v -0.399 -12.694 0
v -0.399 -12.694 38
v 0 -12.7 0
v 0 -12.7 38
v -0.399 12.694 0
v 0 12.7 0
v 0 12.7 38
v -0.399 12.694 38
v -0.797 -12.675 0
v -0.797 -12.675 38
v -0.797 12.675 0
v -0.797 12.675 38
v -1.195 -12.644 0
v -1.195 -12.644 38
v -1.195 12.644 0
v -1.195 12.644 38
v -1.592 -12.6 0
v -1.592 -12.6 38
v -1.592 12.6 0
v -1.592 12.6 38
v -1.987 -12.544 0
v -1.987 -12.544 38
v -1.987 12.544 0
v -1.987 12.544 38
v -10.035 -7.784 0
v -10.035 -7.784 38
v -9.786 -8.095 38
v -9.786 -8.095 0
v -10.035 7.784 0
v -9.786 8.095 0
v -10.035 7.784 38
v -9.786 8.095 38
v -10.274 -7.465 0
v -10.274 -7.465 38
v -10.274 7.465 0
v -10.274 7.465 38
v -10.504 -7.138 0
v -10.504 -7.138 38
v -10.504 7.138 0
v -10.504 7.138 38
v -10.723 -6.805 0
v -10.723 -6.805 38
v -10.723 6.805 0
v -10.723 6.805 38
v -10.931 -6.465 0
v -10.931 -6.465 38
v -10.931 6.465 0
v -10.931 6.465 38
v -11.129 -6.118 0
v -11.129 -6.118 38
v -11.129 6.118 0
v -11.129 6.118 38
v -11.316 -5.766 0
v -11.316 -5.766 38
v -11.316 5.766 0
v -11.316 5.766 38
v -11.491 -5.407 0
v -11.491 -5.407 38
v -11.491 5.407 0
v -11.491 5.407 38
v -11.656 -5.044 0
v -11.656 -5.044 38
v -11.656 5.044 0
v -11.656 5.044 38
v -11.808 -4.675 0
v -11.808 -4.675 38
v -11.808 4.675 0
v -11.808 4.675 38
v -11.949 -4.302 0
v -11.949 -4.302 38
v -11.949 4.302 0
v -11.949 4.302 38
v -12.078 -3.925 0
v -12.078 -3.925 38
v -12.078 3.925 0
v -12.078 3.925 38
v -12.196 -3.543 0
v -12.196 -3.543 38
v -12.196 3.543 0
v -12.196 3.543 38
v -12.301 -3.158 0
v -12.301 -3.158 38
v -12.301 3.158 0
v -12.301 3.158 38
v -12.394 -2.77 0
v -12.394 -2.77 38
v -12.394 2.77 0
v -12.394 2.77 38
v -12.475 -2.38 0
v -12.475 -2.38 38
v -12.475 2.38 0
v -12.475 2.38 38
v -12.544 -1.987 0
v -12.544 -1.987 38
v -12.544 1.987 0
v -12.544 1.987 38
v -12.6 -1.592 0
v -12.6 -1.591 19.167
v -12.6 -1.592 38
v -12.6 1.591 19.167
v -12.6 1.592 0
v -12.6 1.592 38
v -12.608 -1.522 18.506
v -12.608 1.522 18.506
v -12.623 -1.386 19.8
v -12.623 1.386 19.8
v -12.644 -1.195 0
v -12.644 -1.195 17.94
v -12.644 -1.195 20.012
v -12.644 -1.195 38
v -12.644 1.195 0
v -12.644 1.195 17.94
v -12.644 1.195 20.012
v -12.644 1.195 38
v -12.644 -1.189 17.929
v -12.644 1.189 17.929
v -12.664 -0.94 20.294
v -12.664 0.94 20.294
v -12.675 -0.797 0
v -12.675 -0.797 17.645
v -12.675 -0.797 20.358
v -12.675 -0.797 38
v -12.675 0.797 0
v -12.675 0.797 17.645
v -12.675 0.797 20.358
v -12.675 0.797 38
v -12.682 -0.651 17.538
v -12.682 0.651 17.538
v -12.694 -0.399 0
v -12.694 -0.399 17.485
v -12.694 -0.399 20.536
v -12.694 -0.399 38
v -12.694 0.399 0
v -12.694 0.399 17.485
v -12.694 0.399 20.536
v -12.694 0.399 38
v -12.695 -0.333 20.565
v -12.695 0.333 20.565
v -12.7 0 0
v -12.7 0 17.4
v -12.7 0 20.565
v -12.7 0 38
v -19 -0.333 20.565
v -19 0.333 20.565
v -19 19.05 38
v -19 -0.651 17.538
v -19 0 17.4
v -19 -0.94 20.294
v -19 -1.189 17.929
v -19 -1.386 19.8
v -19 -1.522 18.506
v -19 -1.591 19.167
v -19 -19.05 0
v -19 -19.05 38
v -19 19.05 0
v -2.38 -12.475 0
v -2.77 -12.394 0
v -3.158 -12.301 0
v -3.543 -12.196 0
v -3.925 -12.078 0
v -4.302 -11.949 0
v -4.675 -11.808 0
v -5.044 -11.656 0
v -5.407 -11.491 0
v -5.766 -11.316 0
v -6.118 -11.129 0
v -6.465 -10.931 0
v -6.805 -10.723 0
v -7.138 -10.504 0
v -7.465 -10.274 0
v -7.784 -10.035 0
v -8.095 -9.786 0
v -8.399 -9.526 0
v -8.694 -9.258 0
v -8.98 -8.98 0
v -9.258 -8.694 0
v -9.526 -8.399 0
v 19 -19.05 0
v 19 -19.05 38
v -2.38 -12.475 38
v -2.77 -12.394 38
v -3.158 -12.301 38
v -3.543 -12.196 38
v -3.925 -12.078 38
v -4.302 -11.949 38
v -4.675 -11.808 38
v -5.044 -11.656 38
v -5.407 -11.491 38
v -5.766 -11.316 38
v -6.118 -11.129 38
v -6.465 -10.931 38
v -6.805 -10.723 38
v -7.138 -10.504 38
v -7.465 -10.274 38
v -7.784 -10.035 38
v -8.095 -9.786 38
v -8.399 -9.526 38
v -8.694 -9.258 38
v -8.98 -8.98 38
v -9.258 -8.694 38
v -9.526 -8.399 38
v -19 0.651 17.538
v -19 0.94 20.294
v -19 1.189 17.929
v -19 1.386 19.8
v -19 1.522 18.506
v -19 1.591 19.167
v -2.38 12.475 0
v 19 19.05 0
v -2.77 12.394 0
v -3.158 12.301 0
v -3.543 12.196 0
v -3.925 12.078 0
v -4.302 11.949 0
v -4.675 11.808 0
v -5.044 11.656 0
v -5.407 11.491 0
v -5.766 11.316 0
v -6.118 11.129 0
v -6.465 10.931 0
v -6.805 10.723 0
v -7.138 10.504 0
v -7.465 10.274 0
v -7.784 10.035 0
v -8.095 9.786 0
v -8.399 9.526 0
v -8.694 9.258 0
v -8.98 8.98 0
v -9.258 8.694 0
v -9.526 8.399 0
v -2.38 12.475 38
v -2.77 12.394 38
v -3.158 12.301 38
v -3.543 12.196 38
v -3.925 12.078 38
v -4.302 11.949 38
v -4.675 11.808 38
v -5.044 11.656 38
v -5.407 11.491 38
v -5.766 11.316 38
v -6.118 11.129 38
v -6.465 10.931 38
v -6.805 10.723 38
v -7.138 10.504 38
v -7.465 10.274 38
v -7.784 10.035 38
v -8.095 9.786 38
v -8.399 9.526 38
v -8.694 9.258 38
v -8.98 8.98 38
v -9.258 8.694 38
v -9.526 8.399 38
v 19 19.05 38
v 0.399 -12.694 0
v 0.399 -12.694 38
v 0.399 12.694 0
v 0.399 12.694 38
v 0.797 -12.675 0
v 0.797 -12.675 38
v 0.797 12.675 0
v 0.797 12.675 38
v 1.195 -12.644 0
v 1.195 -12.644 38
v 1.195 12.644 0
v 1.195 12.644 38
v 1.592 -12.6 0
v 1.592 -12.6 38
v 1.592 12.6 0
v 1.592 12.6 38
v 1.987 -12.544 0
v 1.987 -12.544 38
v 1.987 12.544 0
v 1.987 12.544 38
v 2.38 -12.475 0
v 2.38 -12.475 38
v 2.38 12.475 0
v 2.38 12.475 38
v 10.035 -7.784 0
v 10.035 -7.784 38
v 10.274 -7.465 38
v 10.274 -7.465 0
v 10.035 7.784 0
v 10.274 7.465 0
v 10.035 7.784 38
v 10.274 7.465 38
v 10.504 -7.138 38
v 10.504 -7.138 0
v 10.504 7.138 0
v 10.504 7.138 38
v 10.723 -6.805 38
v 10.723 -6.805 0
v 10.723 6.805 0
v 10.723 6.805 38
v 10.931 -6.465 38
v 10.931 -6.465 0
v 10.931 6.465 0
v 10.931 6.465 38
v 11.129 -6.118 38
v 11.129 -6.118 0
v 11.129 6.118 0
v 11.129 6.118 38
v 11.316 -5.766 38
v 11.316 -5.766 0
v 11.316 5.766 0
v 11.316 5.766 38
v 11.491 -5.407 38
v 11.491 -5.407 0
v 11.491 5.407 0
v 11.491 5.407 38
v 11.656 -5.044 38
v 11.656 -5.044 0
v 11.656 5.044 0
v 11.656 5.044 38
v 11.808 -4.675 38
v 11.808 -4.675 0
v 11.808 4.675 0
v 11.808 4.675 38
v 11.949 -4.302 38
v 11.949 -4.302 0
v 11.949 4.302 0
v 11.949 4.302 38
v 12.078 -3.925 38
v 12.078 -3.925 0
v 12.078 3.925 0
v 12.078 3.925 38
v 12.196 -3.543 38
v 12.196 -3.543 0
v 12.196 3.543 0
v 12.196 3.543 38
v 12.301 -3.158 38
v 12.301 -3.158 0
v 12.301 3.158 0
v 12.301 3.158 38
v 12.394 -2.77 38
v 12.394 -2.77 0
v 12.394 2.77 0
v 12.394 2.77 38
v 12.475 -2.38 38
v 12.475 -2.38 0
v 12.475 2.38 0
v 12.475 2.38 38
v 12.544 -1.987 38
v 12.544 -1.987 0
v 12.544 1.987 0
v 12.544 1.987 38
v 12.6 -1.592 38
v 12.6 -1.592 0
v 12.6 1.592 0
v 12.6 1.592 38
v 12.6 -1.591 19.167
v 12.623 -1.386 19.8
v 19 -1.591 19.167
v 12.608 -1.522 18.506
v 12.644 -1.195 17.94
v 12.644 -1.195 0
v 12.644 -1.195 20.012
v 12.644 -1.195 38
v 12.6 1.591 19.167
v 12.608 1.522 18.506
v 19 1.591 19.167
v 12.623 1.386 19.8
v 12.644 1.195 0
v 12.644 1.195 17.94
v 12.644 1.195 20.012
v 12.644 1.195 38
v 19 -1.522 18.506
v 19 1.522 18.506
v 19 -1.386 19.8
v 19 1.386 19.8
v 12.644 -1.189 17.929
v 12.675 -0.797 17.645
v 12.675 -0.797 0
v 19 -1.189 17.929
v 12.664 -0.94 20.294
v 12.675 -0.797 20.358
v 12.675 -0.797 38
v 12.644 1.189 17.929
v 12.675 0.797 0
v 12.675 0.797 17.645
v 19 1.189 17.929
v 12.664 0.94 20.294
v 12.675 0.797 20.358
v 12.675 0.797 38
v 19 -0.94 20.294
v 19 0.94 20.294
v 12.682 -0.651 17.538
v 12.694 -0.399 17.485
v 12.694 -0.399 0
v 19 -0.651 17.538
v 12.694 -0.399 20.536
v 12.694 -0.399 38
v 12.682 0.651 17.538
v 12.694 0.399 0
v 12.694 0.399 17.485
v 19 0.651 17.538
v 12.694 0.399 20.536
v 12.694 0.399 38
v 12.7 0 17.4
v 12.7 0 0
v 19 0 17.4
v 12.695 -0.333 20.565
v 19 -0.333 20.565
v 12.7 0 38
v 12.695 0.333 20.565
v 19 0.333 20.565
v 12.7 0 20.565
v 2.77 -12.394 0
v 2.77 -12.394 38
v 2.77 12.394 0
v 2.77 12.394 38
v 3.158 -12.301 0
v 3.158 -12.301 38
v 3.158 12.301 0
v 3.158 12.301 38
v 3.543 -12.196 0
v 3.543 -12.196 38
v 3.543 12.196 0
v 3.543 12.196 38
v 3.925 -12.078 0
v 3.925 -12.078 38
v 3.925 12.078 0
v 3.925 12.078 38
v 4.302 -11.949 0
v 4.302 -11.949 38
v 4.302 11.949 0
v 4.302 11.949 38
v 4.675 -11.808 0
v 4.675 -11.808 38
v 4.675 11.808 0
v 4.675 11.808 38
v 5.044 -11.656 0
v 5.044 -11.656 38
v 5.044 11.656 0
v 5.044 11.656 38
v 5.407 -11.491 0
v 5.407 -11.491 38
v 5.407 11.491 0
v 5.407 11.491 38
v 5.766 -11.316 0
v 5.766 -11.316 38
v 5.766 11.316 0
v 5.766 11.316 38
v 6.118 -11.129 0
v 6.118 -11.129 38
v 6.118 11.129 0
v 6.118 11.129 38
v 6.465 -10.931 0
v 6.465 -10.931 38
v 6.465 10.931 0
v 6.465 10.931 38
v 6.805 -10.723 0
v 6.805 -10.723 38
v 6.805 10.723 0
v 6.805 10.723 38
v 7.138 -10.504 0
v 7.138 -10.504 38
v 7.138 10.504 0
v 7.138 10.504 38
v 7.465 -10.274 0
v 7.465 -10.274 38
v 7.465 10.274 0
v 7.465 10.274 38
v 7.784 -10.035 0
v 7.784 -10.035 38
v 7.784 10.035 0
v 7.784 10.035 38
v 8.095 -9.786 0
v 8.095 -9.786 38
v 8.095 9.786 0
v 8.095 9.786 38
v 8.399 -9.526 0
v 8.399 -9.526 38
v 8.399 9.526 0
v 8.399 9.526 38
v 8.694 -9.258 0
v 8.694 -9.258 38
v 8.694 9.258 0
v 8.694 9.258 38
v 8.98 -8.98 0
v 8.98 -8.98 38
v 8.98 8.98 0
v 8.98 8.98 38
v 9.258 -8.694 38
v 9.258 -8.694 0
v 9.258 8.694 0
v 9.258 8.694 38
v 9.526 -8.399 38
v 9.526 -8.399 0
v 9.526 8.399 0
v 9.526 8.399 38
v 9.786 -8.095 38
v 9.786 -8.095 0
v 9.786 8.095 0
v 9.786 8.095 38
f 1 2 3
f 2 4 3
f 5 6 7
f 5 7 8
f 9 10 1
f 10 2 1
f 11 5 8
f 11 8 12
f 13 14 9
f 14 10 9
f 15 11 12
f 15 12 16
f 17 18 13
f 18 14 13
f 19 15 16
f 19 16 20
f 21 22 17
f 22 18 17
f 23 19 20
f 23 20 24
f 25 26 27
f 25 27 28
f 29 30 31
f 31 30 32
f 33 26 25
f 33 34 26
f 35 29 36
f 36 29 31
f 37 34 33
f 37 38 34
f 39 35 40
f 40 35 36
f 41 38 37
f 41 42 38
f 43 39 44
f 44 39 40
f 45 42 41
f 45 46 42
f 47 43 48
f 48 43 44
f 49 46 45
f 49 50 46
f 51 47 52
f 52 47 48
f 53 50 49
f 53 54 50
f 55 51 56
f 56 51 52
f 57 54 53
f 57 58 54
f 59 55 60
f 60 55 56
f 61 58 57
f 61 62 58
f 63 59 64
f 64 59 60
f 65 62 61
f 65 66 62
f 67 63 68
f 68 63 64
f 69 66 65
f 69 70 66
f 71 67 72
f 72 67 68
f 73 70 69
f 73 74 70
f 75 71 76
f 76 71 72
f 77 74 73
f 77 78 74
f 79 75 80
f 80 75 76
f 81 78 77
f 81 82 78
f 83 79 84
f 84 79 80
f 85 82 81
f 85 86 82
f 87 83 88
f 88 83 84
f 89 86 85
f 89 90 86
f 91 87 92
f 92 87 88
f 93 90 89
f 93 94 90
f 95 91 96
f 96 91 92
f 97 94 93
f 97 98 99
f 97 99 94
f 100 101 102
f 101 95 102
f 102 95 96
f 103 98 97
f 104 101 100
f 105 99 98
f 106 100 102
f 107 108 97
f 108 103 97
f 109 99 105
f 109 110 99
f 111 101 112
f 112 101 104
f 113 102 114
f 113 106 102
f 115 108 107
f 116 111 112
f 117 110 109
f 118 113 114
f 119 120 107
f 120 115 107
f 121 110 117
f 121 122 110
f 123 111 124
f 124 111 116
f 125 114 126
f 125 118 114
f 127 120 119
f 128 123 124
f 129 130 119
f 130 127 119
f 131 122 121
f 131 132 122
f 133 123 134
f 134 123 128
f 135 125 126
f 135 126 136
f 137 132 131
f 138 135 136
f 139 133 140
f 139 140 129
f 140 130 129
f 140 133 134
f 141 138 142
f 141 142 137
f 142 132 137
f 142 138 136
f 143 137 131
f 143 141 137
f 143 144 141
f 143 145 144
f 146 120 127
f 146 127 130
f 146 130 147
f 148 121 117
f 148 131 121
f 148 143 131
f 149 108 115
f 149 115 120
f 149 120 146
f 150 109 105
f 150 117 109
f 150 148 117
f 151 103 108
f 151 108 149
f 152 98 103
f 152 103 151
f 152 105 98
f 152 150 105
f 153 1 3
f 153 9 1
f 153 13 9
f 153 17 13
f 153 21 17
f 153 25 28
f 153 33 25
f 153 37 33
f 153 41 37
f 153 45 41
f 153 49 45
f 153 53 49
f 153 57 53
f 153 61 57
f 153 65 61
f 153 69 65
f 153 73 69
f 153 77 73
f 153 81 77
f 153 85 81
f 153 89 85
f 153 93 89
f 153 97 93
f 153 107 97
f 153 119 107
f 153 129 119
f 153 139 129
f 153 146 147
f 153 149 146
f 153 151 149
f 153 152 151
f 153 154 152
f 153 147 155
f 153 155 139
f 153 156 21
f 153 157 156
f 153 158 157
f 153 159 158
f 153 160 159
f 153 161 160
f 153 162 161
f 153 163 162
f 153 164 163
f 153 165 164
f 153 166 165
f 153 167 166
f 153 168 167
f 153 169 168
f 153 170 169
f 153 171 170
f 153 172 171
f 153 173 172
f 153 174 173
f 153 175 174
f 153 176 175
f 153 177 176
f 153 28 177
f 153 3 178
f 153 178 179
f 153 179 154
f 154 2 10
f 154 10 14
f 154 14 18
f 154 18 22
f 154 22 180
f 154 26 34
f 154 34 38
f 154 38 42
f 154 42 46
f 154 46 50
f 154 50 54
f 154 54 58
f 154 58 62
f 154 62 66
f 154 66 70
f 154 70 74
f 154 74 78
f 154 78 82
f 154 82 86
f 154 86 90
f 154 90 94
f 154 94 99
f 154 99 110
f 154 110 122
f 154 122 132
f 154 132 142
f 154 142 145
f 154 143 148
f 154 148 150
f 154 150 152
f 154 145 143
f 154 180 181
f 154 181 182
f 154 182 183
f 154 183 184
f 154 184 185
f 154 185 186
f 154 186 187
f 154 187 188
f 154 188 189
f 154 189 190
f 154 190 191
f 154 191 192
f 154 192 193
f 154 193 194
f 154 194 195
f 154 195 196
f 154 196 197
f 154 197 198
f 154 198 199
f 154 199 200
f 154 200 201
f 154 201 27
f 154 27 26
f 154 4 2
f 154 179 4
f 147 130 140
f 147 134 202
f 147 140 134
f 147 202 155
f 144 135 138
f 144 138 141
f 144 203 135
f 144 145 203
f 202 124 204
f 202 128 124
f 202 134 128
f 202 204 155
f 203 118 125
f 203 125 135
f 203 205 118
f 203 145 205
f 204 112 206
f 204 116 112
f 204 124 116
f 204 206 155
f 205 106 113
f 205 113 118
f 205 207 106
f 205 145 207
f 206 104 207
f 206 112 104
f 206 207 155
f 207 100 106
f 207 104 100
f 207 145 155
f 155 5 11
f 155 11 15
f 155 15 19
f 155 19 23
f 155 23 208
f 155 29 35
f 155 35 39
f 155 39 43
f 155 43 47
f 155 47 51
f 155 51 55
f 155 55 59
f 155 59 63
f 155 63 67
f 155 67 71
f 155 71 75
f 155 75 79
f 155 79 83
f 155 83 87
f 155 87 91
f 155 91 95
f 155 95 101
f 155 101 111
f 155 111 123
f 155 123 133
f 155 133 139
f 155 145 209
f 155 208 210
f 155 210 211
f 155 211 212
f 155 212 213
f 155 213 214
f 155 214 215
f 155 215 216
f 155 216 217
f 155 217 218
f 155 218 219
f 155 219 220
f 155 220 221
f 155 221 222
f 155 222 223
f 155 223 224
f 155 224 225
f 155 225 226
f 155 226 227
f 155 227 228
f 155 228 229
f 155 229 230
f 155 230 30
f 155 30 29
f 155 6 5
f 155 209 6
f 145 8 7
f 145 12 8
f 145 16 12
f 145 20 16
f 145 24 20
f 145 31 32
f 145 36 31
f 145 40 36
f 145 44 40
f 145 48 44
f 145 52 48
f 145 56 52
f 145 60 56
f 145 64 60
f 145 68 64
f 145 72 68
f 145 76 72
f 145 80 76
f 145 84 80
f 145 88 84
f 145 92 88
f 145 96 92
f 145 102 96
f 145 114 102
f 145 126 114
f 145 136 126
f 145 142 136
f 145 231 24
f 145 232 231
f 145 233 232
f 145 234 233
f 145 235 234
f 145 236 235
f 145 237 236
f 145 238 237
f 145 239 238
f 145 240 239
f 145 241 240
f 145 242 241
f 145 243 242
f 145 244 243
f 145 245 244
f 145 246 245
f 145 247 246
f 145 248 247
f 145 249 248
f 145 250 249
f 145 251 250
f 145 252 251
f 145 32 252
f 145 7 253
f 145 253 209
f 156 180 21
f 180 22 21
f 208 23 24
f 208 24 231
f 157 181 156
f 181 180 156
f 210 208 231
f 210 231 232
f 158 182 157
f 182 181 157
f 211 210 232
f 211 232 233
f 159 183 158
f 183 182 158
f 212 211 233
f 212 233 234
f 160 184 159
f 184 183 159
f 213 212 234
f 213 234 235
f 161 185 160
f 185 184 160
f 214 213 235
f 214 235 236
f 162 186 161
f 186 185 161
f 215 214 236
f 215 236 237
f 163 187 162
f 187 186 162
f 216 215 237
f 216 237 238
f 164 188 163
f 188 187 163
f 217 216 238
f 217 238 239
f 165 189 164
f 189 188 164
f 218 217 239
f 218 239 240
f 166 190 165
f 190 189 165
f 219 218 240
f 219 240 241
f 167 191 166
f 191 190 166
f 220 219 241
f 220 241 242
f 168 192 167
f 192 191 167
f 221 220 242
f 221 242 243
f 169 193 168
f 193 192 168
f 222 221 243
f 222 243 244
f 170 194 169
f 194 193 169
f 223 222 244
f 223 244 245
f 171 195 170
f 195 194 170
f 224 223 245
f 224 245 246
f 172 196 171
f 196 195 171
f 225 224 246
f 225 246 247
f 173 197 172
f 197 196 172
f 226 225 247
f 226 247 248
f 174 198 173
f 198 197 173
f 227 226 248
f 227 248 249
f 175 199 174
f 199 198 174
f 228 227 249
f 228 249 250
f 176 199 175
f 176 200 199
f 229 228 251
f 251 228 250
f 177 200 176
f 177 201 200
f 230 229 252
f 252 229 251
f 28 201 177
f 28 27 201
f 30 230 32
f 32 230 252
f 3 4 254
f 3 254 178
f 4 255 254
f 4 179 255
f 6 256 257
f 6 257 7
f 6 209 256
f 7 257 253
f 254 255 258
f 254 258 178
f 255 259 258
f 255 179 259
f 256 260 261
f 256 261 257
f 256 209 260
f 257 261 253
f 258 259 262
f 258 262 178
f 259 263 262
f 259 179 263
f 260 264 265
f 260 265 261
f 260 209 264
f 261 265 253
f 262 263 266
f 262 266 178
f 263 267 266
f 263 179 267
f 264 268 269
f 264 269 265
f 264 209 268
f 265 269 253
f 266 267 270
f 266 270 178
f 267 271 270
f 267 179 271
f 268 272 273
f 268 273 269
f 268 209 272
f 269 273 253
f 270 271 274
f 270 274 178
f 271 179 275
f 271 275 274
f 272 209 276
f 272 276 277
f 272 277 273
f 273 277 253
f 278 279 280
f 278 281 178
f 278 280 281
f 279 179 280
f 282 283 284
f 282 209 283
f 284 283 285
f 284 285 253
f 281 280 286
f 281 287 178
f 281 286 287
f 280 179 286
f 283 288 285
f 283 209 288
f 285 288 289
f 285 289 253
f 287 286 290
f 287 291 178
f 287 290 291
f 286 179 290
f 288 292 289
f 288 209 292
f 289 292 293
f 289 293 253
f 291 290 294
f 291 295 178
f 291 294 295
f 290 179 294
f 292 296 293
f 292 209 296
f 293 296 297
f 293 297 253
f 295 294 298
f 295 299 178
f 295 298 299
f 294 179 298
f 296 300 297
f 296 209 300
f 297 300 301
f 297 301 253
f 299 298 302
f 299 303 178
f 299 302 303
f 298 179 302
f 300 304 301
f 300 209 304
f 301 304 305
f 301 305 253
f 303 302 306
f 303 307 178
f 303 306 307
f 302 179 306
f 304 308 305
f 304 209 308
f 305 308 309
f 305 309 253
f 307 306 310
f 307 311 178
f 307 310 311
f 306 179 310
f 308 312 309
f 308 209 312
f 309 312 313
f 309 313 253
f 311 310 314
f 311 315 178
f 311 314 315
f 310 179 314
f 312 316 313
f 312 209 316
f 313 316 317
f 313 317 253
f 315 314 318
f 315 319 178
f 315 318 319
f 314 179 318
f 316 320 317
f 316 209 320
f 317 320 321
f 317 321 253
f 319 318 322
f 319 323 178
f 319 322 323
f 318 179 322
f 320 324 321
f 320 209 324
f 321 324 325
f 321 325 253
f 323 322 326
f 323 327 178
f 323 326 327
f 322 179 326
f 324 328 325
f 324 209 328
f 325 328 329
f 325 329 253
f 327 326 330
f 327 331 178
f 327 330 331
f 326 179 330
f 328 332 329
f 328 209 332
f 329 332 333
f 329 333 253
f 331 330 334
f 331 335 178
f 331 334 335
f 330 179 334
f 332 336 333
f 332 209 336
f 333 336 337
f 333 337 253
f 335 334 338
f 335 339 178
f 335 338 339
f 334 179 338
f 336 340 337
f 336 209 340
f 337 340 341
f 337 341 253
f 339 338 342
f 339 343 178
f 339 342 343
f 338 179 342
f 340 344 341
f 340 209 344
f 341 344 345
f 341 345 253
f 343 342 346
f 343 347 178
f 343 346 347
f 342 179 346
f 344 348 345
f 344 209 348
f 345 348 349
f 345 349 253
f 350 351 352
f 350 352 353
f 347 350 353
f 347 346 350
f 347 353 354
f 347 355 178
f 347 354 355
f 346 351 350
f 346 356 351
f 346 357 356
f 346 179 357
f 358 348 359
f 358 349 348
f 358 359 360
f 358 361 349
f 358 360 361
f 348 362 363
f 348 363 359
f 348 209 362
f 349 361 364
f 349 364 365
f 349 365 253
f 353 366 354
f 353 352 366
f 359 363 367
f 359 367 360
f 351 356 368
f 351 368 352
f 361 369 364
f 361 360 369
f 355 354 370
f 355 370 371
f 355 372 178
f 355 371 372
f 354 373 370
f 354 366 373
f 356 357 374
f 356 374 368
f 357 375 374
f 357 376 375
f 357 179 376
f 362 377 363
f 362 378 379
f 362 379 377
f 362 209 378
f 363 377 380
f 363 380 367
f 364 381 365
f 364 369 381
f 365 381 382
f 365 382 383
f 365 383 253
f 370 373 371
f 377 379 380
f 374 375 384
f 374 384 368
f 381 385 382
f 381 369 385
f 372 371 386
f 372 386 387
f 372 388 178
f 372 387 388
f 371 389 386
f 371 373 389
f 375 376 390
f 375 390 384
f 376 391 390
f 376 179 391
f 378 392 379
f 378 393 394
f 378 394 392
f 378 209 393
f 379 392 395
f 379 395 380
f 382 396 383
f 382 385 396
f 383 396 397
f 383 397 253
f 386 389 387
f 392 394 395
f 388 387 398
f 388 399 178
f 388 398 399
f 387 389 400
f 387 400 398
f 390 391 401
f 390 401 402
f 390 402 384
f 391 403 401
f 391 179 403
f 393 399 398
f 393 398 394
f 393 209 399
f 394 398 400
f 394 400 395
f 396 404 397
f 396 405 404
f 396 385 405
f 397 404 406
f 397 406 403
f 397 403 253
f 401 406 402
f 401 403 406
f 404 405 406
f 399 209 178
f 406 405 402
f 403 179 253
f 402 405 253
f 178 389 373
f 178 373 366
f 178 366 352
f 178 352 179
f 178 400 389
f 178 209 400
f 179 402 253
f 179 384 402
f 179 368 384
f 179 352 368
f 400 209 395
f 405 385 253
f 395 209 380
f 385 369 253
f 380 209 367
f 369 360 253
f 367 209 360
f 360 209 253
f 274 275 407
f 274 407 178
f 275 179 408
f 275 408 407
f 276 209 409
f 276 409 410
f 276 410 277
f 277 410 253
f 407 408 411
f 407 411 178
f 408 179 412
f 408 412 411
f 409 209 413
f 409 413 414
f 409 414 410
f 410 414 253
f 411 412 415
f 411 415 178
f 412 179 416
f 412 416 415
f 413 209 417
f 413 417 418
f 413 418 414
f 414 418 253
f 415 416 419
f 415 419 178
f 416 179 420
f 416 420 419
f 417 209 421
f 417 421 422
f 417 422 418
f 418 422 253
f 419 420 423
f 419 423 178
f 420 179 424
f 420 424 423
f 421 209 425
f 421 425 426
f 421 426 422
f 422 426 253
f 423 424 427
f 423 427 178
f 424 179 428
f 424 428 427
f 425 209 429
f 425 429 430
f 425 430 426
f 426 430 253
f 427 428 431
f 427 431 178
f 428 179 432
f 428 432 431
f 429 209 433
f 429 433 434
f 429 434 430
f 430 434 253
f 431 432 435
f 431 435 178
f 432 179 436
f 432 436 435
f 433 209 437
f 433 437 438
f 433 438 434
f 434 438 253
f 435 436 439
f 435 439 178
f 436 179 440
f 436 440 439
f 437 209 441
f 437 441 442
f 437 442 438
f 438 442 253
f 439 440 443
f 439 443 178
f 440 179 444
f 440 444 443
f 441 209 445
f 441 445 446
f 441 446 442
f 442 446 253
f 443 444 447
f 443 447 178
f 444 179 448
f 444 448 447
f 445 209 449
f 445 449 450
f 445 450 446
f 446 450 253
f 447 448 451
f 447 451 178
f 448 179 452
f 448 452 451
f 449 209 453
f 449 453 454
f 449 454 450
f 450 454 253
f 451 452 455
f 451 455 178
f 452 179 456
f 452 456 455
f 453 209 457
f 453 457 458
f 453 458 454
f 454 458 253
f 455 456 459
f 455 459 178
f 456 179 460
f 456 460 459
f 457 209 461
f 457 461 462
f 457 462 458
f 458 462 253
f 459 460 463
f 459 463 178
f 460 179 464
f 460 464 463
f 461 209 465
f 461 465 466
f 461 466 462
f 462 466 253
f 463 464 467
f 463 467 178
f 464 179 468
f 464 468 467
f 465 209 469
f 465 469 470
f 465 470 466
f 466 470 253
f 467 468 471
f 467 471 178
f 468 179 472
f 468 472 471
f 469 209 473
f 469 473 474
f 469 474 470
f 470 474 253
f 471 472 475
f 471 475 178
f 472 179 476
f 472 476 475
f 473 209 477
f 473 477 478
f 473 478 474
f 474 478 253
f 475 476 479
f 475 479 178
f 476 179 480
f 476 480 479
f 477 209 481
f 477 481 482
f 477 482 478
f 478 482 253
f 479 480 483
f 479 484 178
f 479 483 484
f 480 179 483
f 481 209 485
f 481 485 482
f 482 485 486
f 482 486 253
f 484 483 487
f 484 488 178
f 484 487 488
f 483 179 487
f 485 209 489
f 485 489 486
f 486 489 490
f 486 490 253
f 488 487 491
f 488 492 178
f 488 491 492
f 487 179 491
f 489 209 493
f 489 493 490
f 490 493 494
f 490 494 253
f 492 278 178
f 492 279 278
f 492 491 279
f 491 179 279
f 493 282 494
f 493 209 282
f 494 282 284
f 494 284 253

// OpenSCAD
// file: ../../666_1004.scad
include <../parameters.scad>
draft = true;

module 666_1004(coupling_wall_thickness, thickness_between_tubes, draft = true){


bevelled_width = main_tube_outer_diameter + 2*coupling_wall_thickness;

    difference(){

        translate([-(coupling_width_666_1004/2), - depth_666_1004 + main_tube_outer_diameter/2 + coupling_wall_thickness,0])
              cube([coupling_width_666_1004,depth_666_1004,height_666_1004]);

        // middle cut
        translate ([-0.5, 0, - global_clearance/2])
            cube ([1,depth_666_1004,height_666_1004 + global_clearance]);

        //tubes
        translate([0,0,- global_clearance/2])
                cylinder(h=height_666_1004 + global_clearance,r = main_tube_outer_diameter/2, $fn= draft ? 50 : 200);

        translate([-coupling_width_666_1004/2 - global_clearance/2, -(main_tube_outer_diameter+thickness_between_tubes),height_666_1004/2])
            rotate([0,90,0])
               cylinder(h=height_666_1004 + global_clearance,r = main_tube_outer_diameter/2, $fn = draft ? 50 : 200);
        
        //bevelled edge
        translate([bevelled_width/2+coupling_wall_thickness/sqrt(2),coupling_wall_thickness/sqrt(2),- global_clearance/2])
            rotate([0,0,45])
                cube([bevelled_width, bevelled_width,height_666_1004 + global_clearance]);
        
        translate([-(bevelled_width/2) - coupling_wall_thickness/sqrt(2),coupling_wall_thickness/sqrt(2),- global_clearance/2])
            rotate([0,0,45])
                cube([bevelled_width, bevelled_width,height_666_1004 + global_clearance]); 
        
        translate([- height_666_1004/2 - global_clearance/2,- main_tube_outer_diameter/2 - thickness_between_tubes - main_tube_outer_diameter - coupling_wall_thickness - (sqrt(2)*bevelled_width)/2 - (main_tube_outer_diameter/sqrt(2))/3 - coupling_wall_thickness/sqrt(2),-coupling_wall_thickness/sqrt(2)])
            rotate([-45,0,0])
                cube([height_666_1004 + global_clearance,bevelled_width,bevelled_width]);
       
        translate([-coupling_width_666_1004/2 - global_clearance/2,- main_tube_outer_diameter/2 - thickness_between_tubes - main_tube_outer_diameter - coupling_wall_thickness - coupling_wall_thickness/sqrt(2),height_666_1004/2 + coupling_wall_thickness/sqrt(2)])  
            rotate([45,0,0])
                cube([coupling_width_666_1004 + global_clearance,height_666_1004,height_666_1004]);  

        //screw
        translate([-coupling_width_666_1004/2 - global_clearance/2,0,height_666_1004/2])
           rotate ([0,90,0])   
                cylinder(h = coupling_width_666_1004 + global_clearance, r = M3_screw_diameter/2, $fn = 15);

        translate ([0,- (main_tube_outer_diameter+thickness_between_tubes),0])
                cylinder (h = height_666_1004, r = M3_screw_diameter/2, $fn = 15);
                
        //nut
        translate([-coupling_width_666_1004/2 - global_clearance/2,0, height_666_1004/2])
            rotate ([0,90,0])
                cylinder (h = M3_screw_head_height + global_clearance, r = M3_nut_diameter/2, $fn = 6);
        
        translate([coupling_width_666_1004/2 - M3_screw_head_height,0,height_666_1004/2])
           rotate ([0,90,0])
                cylinder (h = M3_screw_head_height + global_clearance, r = M3_nut_diameter/2, $fn = 6);

        translate([0, -(main_tube_outer_diameter+thickness_between_tubes),- global_clearance/2])
                cylinder (h = M3_screw_head_height + global_clearance, r = M3_nut_diameter/2, $fn = 6);

        translate([0,-(main_tube_outer_diameter+thickness_between_tubes),height_666_1004 - M3_screw_head_height])
                cylinder (h = M3_screw_head_height + global_clearance, r = M3_nut_diameter/2, $fn = 6);    
    }
}


module 666_1004_drillhelper(coupling_wall_thickness, thickness_between_tubes, draft = true){

       
    difference(){

        translate([-(coupling_width_666_1004/2), -depth_666_1004_drillhelper/4,0])
              cube([coupling_width_666_1004,depth_666_1004_drillhelper/2,height_666_1004]);

        //tubes
        translate([0,0,- global_clearance/2])
                cylinder(h=height_666_1004 + global_clearance,r = main_tube_outer_diameter/2, $fn= draft ? 50 : 200);
        
        //screw
        translate([-coupling_width_666_1004/2 - global_clearance/2,0,height_666_1004/2])
           rotate ([0,90,0])   
                cylinder(h = coupling_width_666_1004 + global_clearance, r = M3_screw_diameter/2, $fn = 15);
                
    }
}


666_1004(coupling_wall_thickness, thickness_between_tubes, draft);


translate([50,0,0])
    666_1004_drillhelper(coupling_wall_thickness, thickness_between_tubes, draft);
// main file
include <../../../parameters.scad>

use <../../666_1004.scad>

draft = false;

666_1004_drillhelper(coupling_wall_thickness, thickness_between_tubes, draft);
